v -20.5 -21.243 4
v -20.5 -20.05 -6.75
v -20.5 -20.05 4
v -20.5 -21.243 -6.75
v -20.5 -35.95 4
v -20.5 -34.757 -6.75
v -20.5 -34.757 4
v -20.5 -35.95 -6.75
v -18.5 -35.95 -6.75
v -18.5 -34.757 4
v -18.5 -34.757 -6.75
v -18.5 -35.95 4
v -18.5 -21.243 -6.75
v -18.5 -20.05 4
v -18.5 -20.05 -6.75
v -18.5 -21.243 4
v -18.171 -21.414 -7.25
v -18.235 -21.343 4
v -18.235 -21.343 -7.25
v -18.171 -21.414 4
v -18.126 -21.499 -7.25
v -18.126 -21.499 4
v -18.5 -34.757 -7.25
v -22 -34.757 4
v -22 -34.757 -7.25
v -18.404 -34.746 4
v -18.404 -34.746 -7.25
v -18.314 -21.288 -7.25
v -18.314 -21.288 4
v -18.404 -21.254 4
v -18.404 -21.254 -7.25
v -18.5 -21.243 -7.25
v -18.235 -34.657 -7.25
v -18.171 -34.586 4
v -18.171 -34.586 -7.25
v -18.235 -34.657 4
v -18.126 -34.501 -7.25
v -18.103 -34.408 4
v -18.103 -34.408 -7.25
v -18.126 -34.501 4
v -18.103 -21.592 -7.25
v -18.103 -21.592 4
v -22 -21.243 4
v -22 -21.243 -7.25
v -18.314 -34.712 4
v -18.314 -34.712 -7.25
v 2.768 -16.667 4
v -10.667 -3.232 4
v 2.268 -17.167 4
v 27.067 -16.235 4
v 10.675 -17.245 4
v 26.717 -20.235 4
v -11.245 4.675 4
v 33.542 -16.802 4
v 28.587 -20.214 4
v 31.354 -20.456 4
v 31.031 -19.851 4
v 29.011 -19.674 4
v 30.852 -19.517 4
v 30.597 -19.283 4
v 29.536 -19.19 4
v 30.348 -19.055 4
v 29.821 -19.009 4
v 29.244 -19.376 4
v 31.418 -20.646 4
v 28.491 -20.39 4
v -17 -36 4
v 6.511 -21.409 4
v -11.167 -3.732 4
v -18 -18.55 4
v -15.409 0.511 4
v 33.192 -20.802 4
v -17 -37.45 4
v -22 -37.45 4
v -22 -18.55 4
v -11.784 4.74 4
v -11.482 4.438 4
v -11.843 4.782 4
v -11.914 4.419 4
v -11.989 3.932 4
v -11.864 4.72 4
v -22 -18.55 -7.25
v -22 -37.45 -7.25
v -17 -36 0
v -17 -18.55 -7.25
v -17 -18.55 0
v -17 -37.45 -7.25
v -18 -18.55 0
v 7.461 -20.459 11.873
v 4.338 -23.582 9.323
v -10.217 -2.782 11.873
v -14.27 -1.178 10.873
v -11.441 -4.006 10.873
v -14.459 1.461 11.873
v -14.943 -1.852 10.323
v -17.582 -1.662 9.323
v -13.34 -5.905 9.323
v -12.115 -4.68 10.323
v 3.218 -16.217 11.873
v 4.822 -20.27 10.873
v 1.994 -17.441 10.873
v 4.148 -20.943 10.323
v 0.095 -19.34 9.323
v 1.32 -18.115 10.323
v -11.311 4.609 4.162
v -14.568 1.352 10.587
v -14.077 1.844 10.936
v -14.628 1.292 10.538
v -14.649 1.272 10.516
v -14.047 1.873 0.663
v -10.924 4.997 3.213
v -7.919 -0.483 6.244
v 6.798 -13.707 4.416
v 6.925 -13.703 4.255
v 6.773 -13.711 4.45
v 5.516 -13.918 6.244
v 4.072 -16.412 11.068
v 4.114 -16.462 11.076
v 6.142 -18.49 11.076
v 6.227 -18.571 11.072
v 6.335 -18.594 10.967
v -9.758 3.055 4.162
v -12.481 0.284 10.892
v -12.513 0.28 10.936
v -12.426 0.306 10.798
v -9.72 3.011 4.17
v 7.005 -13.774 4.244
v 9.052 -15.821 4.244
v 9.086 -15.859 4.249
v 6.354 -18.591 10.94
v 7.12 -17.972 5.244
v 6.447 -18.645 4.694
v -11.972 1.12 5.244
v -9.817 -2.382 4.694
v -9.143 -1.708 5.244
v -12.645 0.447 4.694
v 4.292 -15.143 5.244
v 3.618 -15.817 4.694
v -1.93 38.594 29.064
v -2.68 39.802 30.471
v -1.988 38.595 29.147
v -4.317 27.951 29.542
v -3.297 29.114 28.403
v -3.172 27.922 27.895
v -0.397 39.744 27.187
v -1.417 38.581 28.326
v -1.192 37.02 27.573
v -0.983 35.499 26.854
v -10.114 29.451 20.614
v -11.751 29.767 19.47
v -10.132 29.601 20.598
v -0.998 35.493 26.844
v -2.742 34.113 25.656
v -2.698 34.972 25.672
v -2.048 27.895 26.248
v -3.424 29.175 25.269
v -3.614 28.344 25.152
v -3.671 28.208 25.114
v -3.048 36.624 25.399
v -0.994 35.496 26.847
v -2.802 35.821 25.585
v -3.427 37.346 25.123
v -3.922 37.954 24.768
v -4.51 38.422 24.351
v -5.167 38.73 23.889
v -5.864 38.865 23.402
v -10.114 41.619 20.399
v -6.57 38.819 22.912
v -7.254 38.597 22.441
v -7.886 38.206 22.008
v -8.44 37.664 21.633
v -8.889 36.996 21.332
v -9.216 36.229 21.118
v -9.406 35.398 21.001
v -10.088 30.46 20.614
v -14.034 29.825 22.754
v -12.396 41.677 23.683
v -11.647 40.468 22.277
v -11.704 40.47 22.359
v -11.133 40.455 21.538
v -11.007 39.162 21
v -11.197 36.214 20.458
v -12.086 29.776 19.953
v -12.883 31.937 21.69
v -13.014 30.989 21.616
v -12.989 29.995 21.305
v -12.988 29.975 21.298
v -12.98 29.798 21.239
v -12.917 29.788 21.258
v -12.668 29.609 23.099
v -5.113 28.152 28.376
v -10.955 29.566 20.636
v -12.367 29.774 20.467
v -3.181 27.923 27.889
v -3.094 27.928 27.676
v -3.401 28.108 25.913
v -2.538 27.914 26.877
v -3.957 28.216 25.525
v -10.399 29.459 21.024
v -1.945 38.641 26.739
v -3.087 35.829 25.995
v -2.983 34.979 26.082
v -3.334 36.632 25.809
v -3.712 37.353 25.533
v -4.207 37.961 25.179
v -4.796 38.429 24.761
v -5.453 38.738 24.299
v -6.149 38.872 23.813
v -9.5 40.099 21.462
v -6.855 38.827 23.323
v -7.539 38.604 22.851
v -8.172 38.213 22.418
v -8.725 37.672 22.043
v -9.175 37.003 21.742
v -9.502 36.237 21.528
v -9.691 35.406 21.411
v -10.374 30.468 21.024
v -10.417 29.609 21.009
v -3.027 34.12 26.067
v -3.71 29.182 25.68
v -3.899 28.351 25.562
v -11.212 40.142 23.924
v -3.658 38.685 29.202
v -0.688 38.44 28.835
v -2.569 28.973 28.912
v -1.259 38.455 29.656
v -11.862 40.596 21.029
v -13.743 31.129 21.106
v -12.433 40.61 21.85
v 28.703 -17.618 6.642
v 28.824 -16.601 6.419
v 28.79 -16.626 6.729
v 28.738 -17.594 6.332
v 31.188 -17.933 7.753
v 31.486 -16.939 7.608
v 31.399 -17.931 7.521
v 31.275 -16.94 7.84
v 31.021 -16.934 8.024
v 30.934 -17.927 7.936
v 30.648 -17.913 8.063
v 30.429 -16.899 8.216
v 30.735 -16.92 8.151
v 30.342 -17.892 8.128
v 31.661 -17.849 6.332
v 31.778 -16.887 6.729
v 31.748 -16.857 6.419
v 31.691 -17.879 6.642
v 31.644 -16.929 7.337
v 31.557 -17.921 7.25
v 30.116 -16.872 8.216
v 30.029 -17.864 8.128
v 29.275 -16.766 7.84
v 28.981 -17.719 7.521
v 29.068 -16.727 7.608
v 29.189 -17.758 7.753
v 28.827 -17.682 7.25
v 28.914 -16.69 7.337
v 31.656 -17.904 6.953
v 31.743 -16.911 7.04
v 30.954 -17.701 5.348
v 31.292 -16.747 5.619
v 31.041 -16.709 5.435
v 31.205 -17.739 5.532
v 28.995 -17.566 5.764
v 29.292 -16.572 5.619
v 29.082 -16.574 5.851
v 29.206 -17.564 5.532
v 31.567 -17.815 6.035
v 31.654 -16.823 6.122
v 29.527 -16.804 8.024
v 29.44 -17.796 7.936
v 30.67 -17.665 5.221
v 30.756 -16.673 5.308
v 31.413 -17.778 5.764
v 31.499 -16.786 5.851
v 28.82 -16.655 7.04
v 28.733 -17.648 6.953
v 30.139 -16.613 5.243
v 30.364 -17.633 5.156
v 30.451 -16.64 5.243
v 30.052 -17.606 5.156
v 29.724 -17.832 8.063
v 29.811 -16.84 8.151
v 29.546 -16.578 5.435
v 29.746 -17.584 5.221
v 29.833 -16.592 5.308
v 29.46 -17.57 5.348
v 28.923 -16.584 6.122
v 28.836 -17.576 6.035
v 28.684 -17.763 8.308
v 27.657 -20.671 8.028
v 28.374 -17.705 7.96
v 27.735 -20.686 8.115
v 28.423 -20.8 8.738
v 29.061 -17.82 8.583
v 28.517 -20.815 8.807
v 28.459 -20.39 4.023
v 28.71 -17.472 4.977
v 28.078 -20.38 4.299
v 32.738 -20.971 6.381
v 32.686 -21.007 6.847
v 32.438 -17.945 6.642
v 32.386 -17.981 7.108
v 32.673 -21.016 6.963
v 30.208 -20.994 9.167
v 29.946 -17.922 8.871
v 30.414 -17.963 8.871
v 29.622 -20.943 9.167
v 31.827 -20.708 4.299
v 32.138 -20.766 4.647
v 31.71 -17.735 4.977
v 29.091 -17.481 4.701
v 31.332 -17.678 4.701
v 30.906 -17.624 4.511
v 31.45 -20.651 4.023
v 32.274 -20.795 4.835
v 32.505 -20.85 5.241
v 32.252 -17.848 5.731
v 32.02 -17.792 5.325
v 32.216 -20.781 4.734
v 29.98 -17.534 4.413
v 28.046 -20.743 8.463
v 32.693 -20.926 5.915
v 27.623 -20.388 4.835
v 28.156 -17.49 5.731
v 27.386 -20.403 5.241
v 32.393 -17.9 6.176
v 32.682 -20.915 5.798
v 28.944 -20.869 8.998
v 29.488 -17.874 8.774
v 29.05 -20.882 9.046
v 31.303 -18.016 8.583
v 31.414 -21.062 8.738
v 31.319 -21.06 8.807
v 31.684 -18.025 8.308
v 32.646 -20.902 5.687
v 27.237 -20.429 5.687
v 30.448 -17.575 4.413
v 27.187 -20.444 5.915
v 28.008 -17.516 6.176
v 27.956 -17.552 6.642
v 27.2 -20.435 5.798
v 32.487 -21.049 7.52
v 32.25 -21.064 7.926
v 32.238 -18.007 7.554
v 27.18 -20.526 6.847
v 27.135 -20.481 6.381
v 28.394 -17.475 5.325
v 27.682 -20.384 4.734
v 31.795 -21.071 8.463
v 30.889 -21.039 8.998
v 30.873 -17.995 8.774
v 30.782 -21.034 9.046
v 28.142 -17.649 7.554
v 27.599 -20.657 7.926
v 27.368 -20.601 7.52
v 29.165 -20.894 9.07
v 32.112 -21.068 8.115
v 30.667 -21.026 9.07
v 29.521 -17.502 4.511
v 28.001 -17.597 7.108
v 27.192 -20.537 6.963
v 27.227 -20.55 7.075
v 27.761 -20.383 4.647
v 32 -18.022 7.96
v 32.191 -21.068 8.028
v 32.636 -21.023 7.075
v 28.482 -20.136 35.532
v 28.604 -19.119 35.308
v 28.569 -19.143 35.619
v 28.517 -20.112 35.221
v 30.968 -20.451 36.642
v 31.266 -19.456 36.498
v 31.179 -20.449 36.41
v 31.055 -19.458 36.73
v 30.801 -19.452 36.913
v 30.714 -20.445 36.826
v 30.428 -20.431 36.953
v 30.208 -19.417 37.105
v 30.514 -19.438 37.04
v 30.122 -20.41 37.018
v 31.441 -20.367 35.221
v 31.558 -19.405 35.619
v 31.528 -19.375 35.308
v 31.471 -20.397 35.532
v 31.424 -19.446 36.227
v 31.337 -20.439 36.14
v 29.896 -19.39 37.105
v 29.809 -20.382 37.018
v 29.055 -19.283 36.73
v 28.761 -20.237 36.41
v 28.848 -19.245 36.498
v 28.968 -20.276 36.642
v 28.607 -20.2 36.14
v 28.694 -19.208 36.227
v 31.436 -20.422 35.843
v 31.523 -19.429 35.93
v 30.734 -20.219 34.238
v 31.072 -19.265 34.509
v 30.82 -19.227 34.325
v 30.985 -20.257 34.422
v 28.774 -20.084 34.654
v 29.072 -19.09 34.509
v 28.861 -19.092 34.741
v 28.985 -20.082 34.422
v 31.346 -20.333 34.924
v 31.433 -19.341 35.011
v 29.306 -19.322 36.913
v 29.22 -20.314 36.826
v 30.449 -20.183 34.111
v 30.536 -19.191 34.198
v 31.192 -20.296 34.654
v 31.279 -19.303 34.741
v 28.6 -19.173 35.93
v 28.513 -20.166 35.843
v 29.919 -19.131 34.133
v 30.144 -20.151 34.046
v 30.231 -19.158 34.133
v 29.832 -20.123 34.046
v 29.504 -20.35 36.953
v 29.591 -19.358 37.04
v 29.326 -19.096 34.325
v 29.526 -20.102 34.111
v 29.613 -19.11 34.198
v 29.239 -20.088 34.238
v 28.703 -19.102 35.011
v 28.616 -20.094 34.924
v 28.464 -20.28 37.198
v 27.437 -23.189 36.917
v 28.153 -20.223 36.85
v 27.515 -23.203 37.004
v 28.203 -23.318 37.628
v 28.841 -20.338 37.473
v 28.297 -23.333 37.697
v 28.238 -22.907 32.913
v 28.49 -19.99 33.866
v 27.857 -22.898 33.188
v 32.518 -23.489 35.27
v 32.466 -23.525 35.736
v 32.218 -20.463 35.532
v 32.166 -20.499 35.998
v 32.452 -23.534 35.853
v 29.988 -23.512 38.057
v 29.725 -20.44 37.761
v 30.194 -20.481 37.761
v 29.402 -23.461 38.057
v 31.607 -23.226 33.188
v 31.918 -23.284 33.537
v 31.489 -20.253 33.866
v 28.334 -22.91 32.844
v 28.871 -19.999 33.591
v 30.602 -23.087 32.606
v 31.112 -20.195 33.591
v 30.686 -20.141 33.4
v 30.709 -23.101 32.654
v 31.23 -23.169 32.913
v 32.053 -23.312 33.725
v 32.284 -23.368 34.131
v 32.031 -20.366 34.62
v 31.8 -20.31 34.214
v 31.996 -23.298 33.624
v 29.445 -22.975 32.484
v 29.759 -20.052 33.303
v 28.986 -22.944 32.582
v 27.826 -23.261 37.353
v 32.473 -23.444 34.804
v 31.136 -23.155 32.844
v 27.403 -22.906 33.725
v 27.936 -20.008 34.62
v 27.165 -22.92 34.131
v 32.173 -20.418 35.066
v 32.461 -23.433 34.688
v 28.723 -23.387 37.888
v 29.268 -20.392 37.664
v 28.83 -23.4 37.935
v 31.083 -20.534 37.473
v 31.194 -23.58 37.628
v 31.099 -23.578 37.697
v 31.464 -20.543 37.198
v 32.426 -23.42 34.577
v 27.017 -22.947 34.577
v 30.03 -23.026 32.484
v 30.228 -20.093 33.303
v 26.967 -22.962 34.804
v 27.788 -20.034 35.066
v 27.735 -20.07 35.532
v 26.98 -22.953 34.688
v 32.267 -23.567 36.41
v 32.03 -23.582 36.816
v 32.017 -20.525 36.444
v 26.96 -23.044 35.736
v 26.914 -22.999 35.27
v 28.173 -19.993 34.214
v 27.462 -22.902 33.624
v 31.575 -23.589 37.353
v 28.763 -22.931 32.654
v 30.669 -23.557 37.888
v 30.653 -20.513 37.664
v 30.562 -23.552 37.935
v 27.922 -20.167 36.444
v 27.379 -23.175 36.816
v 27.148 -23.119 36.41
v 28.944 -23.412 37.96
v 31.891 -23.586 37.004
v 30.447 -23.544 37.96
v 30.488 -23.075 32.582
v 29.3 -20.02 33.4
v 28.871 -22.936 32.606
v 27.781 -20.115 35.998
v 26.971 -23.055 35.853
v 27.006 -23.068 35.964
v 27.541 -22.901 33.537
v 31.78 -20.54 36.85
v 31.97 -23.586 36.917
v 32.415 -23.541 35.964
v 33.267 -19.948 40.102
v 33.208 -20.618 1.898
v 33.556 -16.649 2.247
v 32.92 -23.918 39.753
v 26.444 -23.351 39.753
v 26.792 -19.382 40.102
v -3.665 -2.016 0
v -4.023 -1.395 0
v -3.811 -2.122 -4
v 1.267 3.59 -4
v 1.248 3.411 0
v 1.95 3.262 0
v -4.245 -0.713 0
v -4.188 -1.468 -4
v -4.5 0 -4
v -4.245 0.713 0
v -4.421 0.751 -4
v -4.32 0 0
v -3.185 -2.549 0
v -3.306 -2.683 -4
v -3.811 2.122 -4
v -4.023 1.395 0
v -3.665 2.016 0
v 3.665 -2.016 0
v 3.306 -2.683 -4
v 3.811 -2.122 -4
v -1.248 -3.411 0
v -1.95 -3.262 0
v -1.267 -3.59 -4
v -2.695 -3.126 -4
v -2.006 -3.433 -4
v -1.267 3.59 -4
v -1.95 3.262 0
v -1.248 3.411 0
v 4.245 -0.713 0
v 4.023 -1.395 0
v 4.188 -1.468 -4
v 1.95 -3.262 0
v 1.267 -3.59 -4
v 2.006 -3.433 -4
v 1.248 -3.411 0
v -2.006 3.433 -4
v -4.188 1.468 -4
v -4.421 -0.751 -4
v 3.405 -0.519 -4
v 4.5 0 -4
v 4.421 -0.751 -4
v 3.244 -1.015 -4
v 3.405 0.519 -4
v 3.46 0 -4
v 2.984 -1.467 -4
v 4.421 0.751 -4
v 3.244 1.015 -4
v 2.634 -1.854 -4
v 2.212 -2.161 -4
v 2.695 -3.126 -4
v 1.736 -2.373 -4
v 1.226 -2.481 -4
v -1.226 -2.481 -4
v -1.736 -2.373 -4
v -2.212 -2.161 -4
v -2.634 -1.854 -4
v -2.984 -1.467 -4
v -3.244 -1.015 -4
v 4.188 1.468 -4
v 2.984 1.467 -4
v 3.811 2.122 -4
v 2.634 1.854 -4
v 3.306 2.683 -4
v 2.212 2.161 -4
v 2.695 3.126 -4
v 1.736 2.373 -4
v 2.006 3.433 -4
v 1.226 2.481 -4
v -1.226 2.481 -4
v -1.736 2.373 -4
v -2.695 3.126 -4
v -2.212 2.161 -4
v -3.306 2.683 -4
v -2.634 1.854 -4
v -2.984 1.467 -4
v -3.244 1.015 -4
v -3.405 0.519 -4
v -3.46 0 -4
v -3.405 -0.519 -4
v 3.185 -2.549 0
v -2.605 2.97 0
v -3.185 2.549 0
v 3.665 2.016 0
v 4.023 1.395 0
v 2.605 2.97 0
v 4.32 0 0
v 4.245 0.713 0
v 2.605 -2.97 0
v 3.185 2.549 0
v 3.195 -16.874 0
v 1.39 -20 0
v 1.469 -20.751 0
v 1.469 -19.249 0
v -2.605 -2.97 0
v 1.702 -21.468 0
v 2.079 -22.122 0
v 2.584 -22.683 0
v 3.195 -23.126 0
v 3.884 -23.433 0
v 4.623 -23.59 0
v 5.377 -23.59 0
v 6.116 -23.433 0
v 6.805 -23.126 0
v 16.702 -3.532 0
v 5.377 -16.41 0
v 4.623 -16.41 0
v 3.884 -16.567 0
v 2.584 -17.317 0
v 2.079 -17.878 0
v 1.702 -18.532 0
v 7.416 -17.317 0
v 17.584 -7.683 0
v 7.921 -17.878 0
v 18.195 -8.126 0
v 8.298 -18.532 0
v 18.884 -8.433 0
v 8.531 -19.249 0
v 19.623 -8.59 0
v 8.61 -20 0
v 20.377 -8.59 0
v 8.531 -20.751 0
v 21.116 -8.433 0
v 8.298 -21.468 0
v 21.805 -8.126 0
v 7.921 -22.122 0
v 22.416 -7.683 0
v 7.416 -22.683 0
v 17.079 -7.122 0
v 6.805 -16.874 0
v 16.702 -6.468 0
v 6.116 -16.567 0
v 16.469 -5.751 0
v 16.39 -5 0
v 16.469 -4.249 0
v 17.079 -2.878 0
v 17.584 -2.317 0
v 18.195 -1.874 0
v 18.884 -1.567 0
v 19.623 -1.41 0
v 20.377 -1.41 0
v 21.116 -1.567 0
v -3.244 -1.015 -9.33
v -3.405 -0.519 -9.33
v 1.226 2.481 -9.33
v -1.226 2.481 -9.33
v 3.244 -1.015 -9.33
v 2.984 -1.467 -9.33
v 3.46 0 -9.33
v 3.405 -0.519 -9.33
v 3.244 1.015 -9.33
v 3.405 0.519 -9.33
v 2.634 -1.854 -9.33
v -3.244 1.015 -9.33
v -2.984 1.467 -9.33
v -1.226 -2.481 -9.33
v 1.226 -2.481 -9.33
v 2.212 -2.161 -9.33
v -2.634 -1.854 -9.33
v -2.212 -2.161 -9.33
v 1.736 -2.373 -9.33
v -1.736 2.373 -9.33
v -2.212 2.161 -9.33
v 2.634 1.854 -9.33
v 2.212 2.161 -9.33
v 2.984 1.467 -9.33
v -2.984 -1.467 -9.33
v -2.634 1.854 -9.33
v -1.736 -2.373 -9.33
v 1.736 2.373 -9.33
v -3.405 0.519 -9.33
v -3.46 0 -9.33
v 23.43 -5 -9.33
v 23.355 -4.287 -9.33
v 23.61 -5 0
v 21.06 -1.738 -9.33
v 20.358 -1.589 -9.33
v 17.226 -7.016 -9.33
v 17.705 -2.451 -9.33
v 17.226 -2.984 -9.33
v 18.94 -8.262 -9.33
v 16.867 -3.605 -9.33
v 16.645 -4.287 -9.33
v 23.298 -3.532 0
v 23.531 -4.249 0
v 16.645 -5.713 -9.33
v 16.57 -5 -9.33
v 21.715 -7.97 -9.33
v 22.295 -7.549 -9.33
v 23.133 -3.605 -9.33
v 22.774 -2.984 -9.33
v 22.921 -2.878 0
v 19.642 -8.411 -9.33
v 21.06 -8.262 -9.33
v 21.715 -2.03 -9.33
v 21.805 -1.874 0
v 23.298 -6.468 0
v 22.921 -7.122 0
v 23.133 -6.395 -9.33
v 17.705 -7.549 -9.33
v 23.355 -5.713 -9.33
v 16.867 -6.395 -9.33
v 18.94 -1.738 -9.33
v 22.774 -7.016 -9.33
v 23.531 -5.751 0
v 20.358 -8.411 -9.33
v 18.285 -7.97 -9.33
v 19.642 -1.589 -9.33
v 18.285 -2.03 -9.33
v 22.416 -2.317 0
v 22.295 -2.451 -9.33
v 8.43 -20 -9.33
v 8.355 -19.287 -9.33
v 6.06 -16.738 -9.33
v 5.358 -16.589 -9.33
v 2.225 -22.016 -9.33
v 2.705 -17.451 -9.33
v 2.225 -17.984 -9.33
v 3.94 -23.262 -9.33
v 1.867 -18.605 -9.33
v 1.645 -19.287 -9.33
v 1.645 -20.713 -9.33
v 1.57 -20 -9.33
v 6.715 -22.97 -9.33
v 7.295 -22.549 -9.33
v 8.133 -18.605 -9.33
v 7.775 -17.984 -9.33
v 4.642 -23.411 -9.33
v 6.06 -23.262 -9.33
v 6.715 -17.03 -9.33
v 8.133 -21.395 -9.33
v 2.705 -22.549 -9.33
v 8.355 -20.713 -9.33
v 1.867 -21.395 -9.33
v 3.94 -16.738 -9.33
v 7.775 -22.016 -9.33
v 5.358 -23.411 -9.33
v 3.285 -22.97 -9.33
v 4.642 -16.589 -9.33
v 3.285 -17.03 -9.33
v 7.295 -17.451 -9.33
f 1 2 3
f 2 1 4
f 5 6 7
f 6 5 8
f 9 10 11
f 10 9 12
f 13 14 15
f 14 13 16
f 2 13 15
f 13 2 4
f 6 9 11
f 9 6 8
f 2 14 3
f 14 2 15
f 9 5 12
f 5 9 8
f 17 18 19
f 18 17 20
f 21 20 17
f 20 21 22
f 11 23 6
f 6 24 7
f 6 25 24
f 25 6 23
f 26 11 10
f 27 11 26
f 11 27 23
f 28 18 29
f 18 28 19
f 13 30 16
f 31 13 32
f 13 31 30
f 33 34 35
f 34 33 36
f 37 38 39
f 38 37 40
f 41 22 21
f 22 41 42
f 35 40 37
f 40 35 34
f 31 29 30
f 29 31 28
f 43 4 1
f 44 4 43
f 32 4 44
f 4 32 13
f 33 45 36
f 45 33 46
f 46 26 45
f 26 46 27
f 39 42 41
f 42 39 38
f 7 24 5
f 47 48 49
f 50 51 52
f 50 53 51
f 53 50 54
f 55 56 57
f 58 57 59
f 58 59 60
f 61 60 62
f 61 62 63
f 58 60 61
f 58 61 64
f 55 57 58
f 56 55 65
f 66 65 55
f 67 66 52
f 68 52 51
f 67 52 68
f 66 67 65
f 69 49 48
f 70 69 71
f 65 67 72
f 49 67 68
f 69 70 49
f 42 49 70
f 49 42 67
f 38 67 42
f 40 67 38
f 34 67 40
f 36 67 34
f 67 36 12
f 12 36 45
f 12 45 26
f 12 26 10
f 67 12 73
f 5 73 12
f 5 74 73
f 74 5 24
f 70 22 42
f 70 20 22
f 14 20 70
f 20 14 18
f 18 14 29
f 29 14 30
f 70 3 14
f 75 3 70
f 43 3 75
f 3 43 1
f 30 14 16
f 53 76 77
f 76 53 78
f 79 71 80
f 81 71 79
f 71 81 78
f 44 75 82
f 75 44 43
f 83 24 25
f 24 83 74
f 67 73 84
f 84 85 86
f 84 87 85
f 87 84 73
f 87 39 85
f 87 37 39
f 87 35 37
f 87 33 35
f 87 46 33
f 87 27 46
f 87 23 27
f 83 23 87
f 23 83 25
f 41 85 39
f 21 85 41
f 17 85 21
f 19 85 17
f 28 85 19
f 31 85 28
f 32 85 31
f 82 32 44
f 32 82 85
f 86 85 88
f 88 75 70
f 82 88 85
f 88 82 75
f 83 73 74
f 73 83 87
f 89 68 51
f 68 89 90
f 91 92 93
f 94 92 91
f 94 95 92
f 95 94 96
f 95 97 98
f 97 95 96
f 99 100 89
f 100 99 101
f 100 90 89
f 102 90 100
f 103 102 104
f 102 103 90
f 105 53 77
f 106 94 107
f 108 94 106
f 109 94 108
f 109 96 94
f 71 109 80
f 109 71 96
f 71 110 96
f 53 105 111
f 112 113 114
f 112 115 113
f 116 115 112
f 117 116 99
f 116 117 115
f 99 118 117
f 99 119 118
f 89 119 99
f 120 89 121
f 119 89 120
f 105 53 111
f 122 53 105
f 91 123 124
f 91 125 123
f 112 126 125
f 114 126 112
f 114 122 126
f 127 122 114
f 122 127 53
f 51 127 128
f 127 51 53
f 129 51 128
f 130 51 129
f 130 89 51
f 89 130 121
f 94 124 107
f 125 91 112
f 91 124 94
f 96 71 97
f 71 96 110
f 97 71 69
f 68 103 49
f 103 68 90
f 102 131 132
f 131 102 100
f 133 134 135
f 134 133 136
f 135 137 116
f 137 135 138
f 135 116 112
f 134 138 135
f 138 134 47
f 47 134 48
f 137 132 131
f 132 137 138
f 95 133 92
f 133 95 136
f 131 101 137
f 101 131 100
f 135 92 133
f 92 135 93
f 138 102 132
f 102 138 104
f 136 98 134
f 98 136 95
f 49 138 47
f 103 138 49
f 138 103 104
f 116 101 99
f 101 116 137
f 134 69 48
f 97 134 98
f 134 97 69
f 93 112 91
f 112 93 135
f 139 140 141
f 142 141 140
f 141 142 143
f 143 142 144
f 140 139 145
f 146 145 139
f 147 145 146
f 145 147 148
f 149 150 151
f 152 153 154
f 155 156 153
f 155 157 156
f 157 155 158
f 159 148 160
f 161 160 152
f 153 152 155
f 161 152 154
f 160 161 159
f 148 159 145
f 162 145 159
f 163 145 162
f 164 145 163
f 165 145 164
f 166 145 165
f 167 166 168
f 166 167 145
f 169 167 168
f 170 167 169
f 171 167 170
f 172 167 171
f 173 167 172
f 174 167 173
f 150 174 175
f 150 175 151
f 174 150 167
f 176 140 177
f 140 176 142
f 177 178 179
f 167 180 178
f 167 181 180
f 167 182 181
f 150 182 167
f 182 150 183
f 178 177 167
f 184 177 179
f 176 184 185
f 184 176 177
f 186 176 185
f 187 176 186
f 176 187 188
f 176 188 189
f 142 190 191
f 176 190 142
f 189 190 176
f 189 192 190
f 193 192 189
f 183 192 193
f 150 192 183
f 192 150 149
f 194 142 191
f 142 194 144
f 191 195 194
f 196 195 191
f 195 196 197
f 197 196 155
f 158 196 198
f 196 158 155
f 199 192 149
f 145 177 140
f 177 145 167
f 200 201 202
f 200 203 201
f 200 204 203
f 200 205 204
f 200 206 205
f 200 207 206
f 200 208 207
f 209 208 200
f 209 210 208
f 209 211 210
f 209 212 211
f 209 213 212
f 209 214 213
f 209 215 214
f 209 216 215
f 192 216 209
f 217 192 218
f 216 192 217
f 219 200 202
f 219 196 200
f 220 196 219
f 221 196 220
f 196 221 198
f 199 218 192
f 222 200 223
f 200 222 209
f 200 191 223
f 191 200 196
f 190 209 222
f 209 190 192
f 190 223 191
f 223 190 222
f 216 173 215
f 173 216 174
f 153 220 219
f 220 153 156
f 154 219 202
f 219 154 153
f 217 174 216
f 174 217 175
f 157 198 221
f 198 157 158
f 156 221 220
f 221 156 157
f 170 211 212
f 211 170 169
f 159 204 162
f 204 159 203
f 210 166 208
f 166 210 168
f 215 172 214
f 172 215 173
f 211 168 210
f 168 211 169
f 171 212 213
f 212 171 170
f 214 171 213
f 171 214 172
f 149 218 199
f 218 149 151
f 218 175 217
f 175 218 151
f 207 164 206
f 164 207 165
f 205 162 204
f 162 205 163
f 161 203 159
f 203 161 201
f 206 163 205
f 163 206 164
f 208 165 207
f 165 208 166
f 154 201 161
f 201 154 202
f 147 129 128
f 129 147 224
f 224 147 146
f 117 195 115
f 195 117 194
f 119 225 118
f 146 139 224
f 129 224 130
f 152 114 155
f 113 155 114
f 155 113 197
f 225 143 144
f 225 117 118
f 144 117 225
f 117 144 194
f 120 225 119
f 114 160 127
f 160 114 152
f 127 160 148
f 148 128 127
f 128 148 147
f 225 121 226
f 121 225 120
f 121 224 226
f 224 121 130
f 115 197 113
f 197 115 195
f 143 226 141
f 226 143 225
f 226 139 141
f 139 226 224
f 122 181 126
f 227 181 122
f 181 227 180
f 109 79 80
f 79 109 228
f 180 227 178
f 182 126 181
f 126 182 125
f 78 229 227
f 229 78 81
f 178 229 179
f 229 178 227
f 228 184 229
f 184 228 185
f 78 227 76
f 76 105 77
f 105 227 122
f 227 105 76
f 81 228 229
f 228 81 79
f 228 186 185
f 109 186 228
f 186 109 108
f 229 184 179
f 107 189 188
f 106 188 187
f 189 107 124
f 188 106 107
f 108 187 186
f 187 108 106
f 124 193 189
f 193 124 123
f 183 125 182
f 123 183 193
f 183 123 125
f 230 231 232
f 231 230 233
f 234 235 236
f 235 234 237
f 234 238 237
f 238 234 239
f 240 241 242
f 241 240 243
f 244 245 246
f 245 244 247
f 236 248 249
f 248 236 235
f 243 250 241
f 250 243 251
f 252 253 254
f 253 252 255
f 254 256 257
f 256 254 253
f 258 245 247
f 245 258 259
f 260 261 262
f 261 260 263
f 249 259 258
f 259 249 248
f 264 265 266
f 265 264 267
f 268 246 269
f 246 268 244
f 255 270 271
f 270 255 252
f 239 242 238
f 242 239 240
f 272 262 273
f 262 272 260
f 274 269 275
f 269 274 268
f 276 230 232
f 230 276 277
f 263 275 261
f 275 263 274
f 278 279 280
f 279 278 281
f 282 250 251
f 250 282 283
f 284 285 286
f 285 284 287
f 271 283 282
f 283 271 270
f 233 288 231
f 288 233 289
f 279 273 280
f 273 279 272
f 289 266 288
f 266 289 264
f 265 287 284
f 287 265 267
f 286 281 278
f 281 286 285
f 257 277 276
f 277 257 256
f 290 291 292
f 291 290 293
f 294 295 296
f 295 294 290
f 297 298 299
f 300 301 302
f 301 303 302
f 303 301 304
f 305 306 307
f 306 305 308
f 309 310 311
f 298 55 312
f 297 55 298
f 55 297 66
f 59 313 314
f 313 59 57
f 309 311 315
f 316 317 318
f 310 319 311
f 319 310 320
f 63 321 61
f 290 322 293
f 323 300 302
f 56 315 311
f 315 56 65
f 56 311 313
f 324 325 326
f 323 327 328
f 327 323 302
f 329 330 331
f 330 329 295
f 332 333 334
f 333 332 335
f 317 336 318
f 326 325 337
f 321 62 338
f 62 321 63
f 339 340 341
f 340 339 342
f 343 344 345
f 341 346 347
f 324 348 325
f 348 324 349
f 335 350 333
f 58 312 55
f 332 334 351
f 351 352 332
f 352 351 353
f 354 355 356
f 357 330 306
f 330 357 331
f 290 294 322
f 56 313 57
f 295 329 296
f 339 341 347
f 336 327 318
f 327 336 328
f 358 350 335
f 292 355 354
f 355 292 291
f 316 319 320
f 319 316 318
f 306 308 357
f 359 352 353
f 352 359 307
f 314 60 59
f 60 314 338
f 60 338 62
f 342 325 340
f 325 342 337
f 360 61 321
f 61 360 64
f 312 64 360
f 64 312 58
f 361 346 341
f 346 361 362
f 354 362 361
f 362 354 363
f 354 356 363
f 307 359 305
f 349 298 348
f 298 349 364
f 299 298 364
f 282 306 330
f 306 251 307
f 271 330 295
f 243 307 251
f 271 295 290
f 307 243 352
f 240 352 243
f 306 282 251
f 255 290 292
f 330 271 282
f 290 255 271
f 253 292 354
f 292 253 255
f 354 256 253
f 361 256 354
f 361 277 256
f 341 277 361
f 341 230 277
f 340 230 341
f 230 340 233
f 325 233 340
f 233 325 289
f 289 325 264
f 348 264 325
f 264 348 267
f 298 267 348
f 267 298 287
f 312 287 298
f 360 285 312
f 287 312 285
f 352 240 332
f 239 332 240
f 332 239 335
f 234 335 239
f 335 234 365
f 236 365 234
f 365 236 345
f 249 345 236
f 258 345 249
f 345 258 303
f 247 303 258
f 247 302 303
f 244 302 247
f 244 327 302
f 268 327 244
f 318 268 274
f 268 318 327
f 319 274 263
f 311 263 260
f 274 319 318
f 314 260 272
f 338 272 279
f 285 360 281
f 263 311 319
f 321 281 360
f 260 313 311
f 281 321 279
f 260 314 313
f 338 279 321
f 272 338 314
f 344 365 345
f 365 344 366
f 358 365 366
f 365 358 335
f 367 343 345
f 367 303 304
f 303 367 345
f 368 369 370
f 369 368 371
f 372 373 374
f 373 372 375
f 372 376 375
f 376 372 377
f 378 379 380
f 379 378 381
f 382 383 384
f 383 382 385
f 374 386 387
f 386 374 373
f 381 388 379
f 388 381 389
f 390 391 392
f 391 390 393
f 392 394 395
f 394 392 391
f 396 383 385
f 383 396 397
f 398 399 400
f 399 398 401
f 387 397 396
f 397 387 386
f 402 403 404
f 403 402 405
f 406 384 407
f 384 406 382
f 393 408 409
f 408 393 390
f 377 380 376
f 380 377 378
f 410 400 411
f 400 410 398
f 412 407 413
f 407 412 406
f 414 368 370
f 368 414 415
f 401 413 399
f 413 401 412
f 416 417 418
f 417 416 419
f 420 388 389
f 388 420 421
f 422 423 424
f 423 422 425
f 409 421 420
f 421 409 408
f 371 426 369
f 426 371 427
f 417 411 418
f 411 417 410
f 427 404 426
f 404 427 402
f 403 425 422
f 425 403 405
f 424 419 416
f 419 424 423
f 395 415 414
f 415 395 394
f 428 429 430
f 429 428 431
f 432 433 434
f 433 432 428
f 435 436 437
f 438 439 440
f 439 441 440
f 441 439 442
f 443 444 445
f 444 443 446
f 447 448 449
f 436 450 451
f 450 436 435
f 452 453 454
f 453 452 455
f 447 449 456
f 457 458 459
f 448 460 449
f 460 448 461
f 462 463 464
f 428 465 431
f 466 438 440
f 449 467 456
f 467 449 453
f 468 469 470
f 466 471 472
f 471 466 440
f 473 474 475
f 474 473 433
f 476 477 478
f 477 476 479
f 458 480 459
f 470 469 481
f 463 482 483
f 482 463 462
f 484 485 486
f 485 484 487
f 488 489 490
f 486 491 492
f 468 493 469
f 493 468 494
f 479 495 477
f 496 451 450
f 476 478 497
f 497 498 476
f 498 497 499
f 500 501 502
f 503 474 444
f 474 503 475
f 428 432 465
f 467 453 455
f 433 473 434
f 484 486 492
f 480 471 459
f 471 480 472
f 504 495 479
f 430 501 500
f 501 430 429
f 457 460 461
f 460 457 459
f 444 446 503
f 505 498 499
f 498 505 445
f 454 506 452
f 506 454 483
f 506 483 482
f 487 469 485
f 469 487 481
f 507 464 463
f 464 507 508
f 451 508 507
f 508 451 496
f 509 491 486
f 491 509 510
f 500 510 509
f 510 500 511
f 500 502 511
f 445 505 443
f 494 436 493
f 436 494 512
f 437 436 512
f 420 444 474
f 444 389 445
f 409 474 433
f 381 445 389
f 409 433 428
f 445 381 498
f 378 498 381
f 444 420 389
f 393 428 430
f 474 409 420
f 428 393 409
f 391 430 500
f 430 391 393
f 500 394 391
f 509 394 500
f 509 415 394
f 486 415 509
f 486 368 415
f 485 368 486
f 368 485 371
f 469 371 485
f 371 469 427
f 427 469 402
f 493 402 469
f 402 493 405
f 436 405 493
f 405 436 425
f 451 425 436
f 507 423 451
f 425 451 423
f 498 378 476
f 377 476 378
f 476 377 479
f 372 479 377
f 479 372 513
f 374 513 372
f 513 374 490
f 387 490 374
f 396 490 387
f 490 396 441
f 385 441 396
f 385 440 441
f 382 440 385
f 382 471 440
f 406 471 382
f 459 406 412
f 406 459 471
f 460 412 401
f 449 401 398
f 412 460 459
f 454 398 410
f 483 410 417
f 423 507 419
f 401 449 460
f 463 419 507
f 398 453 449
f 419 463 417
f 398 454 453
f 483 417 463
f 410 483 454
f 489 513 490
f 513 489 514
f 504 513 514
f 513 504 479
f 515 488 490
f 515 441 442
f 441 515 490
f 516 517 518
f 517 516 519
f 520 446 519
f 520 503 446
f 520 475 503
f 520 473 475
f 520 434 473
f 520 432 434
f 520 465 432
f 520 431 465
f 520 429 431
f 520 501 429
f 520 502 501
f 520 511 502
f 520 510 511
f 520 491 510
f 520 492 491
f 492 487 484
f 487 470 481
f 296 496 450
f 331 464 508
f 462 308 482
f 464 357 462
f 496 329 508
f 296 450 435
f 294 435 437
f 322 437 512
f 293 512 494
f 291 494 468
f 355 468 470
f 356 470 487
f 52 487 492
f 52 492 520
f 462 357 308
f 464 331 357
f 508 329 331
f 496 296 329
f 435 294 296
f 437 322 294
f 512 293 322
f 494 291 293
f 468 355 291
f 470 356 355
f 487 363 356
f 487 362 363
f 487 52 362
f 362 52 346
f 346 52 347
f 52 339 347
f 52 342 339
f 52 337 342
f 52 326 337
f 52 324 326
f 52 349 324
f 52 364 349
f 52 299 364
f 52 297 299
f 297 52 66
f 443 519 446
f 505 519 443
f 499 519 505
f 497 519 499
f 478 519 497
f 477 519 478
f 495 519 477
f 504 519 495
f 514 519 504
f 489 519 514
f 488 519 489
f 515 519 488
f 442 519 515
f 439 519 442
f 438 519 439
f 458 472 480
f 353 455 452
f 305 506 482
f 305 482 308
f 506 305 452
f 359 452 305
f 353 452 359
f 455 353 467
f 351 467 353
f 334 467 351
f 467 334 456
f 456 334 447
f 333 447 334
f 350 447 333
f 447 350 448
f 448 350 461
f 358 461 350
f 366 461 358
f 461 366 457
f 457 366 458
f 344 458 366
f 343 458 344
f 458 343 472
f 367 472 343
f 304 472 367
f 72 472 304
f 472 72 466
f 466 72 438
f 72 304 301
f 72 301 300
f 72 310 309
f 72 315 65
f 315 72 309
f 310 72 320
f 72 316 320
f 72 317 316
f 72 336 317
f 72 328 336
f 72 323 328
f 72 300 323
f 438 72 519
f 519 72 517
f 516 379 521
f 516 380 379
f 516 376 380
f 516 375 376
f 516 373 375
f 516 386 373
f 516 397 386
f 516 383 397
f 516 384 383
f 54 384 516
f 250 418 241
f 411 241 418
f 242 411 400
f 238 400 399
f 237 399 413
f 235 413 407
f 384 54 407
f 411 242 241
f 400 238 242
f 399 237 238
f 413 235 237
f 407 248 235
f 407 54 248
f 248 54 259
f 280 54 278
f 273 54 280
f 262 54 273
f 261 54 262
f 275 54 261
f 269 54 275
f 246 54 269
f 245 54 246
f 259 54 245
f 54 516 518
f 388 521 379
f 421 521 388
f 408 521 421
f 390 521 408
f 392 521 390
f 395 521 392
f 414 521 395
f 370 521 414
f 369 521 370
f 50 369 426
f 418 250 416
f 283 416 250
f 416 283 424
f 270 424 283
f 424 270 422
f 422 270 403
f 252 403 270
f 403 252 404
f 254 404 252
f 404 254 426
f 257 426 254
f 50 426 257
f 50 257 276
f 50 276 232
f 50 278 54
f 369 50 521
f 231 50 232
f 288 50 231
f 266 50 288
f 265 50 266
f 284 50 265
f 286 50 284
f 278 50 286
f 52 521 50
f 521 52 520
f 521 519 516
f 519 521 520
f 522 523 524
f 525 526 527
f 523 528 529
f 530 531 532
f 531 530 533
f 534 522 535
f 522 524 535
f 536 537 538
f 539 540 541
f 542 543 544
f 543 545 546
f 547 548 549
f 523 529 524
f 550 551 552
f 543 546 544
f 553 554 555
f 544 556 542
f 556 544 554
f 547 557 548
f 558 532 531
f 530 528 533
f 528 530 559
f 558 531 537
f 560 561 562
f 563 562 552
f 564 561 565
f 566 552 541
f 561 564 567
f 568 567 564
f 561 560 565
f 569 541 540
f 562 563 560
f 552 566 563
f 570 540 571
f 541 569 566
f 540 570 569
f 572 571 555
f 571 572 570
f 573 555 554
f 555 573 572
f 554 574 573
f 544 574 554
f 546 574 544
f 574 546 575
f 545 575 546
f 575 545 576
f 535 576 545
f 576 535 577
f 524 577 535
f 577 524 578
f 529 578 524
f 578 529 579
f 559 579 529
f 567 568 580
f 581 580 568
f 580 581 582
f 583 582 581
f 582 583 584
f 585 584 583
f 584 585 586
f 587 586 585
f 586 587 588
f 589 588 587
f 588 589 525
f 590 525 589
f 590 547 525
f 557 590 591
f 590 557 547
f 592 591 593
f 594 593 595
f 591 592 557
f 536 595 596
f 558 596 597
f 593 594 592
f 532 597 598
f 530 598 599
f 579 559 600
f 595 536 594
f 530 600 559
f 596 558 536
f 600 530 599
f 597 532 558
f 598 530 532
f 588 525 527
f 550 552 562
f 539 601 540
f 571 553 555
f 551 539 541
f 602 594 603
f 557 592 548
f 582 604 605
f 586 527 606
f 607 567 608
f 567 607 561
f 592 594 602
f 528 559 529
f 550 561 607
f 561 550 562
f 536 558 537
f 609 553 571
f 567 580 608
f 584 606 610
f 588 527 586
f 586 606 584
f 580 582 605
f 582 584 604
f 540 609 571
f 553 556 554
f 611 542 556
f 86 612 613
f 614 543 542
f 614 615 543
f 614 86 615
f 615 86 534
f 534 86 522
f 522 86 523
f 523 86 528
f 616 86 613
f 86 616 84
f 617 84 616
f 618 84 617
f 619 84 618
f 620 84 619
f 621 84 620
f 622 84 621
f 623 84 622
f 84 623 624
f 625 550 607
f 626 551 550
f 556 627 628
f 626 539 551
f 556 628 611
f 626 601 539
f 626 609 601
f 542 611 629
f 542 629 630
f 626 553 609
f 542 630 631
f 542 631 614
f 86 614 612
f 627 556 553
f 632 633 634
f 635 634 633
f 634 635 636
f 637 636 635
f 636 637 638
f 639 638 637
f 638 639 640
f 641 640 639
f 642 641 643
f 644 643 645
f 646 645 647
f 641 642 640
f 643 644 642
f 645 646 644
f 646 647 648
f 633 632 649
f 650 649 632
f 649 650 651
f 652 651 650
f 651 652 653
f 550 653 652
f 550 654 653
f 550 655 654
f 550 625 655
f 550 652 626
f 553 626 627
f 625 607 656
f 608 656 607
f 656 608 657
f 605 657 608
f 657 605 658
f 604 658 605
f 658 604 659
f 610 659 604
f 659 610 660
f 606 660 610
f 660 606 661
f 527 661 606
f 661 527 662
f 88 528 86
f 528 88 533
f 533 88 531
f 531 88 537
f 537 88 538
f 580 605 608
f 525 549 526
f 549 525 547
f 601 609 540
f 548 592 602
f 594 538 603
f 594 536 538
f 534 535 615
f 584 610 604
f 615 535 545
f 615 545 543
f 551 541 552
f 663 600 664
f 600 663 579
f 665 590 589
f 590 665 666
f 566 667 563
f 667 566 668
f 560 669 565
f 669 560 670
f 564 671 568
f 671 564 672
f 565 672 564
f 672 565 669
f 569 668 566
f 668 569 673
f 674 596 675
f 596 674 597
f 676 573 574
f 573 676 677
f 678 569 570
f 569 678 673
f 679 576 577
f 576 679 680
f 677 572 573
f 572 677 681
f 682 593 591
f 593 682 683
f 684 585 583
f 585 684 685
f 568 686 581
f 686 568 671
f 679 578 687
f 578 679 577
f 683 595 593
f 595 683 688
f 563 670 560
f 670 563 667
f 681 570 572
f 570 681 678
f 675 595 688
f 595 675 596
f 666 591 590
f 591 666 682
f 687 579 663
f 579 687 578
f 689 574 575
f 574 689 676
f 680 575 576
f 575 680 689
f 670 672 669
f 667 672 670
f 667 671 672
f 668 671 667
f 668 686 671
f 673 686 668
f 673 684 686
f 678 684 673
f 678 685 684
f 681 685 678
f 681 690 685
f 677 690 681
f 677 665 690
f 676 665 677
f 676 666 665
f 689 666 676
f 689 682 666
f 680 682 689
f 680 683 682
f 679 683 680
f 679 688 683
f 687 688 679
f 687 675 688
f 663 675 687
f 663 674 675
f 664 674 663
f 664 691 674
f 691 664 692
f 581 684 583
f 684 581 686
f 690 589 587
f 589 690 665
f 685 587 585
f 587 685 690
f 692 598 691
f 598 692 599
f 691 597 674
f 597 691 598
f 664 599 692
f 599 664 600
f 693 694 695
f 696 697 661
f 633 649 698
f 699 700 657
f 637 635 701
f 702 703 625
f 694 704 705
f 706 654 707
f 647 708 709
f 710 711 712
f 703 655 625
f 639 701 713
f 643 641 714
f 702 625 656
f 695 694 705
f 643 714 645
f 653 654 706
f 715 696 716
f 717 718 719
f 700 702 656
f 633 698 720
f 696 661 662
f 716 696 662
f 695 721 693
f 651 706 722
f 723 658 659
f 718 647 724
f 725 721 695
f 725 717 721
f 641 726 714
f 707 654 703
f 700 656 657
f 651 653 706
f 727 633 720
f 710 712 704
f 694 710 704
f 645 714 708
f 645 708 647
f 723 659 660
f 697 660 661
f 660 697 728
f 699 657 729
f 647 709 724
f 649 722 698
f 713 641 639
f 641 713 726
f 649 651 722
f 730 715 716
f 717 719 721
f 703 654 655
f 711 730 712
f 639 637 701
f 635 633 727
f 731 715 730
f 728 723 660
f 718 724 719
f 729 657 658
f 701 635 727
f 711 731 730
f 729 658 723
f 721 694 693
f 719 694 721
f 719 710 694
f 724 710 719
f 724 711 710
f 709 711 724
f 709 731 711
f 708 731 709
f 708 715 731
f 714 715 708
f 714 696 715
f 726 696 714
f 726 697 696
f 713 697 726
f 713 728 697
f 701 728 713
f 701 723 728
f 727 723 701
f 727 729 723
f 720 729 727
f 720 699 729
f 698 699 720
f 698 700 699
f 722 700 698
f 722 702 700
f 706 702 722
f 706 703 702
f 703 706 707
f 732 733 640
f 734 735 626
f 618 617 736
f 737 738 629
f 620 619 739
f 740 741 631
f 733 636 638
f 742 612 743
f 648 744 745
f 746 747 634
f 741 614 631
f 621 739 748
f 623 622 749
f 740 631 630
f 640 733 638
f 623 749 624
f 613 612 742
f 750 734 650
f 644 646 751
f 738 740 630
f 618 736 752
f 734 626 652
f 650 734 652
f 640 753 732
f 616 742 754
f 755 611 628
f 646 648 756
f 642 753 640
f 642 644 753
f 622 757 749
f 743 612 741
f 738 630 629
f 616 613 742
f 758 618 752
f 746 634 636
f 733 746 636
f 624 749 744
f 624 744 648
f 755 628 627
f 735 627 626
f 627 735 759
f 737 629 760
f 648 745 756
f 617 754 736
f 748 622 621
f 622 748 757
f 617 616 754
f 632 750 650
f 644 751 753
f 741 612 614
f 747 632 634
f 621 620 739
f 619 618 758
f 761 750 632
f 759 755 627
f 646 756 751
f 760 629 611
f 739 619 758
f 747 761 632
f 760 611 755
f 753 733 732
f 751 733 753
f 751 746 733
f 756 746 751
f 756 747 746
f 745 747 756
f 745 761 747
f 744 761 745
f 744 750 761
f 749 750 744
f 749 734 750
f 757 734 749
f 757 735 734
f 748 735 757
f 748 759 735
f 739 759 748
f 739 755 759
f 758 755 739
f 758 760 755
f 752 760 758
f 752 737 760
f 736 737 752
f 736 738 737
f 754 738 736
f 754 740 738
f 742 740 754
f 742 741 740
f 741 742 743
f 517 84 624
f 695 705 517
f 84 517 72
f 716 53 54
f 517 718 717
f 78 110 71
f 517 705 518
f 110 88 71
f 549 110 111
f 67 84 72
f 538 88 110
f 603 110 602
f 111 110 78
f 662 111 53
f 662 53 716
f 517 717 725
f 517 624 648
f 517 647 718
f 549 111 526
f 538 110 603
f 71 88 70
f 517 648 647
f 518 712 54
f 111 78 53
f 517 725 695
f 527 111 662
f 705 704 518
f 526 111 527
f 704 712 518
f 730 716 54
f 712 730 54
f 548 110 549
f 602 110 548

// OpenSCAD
$upperInnerWidth = 9;
$upperInnerLength = 7.22;

$lowerInnerWidth = 6.92;
$lowerInnerLength = 4.99;

$innerHalfDepth = 4;
$innerFullDepth = 9.33;

$thickness = 1.4;

$piCamWidth = 27;
$piCamDepth = 1.1;
$piCamEdgeWidth = 4;
$piCamEdgeHeight = 6;

$screenScrewRadius = 1.5;

$usbMountWidth = 15.9;
$usbMountDepth = 21.5;
$usbMountHeight = 2;

$lcdScrewDistance = 29;

$cameraCableLength = 60;
$cameraBoxWidth = 9.33;
$cameraBoxDepth = $cameraBoxWidth;
$cameraBoxHeight = 3;
$cameraRadius = 8.23 / 2;

$fs = 0.1;

module upperMount() {
    $offset = ($upperInnerWidth - ($upperInnerLength)) / 2;

    hull() {
        for (i = [ -$offset, $offset ]) {
            translate([ i, 0, 0 ])
                cylinder($innerHalfDepth, ($upperInnerLength * 0.95) / 2,
                         $upperInnerLength / 2);
        }
    }
}

module lowerMount() {
    $offset = ($lowerInnerWidth - ($lowerInnerLength)) / 2;
    hull() {
        for (i = [ -$offset, $offset ]) {
            translate([ 0, 0, $innerHalfDepth ]) {
                translate([ i, 0, 0 ])
                    cylinder($innerFullDepth - $innerHalfDepth,
                             $lowerInnerLength / 2, $lowerInnerLength / 2);
            }
        }
    }
}

// upperMount();
// lowerMount();

module fullMount() {
    rotate([ 0, 180, 0 ]) {
        union() {
            upperMount();
            lowerMount();
        }
    }
}

module otherLeg() {
    translate([ 0, 0, -$innerFullDepth ]) {
        cylinder($innerFullDepth, ($upperInnerLength * 0.95) / 2,
                 $upperInnerLength / 2);
    }
}

module base() {
    translate([ $piCamWidth / 3, -$piCamWidth / 3, 2 ]) {
        cube([ $piCamWidth * 2, $piCamWidth * 2, 4 ], true);
    }
}

module deviceMounts() {
    translate([ -4, -10, 8 ]) rotate([ 30, 0, -45 ]) piCamMount();

    translate([ 30, -20, 21 ]) rotate([ 5, 0, -5 ]) screenMount();

    translate([ -19.5, -28, 4 ]) rotate([ 0, -90, 0 ]) usbMountBox();
}

module piCamMount() {
    module baseCube() {
        translate([ 0, 0, -2 ]) cube(
            [ $piCamWidth + 4, $piCamDepth + 4, $piCamEdgeHeight + 4 ], true);
    }

    difference() {
        baseCube();
        cube([ $piCamWidth, $piCamDepth, $piCamEdgeHeight + 1 ], true);
        cube(
            [
                $piCamWidth - ($piCamEdgeWidth * 2), $piCamDepth + 5,
                $piCamEdgeHeight + 1
            ],
            true);
    }

    module placedCamera(renderLeftHandle = false, renderRightHandle = false) {
        rotate([ 0, 0, 45 ]) translate([ 0, $cameraCableLength * 0.8, 0 ])
            rotate([ 180 - 20, -15, 0 ])
                cameraMount(renderLeftHandle, renderRightHandle);
    }

    placedCamera();

    hull() {
        placedCamera(renderLeftHandle = true);
        translate([ $piCamWidth / 2, $piCamDepth, -2 ])
            cube([ 3, 0.1, ($piCamEdgeHeight + 4) * 0.8 ], true);
    }

    hull() {
        placedCamera(renderRightHandle = true);
        translate([ -$piCamWidth / 2, $piCamDepth, -2 ])
            cube([ 3, 0.1, ($piCamEdgeHeight + 4) * 0.8 ], true);
    }
}

module screenMount() {
    rotate([ 90, 0, 0 ]) difference() {
        cube([ 5 + ($screenScrewRadius), 38, 4 ], true);
        translate([ 0, 0, -3 ]) {
            for (i = [ -$lcdScrewDistance / 2, $lcdScrewDistance / 2 ]) {
                translate([ 0, i, 0 ]) {
                    cylinder(5 + 1, $screenScrewRadius, $screenScrewRadius);
                    translate([ 0, 0, 2 ]) cylinder(4, $screenScrewRadius * 1.5,
                                                    $screenScrewRadius * 2);
                }
            }
        }
    }
}

module usbMountBox() {
    difference() {
        translate([ -($usbMountDepth + 1) * 0.25, 0, 0 ]) cube(
            [
                ($usbMountDepth + 1) * 0.5, $usbMountWidth + 3,
                $usbMountHeight + 3
            ],
            true);
        union() {
            cube([ $usbMountDepth, $usbMountWidth, $usbMountHeight ], true);
            minkowski() {
                translate([ 0, 0, 1 ]) cube(
                    [
                        $usbMountDepth + 1.1, $usbMountWidth / 1.25,
                        $usbMountHeight + 2
                    ],
                    true);
                sphere(r = 0.4);
            }
        }
    }
}

module legs() {
    fullMount();
    translate([ 20, -5, 0 ]) otherLeg();
    translate([ 5, -20, 0 ]) otherLeg();
}

module betterBase() {
    hull() {
        intersection() {
            base();
            deviceMounts();
        }
        intersection() {
            base();
            legs();
        }
    }
}

module camera() {
    cube([ $cameraBoxWidth, $cameraBoxDepth, $cameraBoxHeight ], true);
    cylinder($cameraBoxHeight * 2, $cameraRadius, $cameraRadius);
}

module cameraMount(renderRightHandle = false, renderLeftHandle = false) {
    $handleThickness = 1;

    module handle() {
        cube([ $handleThickness, 12 * 0.8, $handleThickness ], true);
    }

    if (renderRightHandle || renderLeftHandle) {
        if (renderRightHandle) {
            translate([ 5.9 + ($handleThickness / 2), 0, 0 ])

                handle();
        }
        if (renderLeftHandle) {
            translate([ -(5.9 + ($handleThickness / 2)), 0, 0 ]) handle();
        }
    } else {
        difference() {
            cube([ 12, 12, 4 ], true);
            hull() {
                for (i = [ 0, 5 ]) {
                    translate([ 0, i, 0 ]) cube(
                        [ $cameraBoxWidth, $cameraBoxDepth, $cameraBoxHeight ],
                        true);
                }
            }
            hull() {
                for (i = [ 0, 5 ]) {
                    translate([ 0, i, 0 ]) cylinder(
                        $cameraBoxHeight * 2, $cameraRadius, $cameraRadius);
                }
            }
        }
    }
}

legs();
betterBase();
deviceMounts();
